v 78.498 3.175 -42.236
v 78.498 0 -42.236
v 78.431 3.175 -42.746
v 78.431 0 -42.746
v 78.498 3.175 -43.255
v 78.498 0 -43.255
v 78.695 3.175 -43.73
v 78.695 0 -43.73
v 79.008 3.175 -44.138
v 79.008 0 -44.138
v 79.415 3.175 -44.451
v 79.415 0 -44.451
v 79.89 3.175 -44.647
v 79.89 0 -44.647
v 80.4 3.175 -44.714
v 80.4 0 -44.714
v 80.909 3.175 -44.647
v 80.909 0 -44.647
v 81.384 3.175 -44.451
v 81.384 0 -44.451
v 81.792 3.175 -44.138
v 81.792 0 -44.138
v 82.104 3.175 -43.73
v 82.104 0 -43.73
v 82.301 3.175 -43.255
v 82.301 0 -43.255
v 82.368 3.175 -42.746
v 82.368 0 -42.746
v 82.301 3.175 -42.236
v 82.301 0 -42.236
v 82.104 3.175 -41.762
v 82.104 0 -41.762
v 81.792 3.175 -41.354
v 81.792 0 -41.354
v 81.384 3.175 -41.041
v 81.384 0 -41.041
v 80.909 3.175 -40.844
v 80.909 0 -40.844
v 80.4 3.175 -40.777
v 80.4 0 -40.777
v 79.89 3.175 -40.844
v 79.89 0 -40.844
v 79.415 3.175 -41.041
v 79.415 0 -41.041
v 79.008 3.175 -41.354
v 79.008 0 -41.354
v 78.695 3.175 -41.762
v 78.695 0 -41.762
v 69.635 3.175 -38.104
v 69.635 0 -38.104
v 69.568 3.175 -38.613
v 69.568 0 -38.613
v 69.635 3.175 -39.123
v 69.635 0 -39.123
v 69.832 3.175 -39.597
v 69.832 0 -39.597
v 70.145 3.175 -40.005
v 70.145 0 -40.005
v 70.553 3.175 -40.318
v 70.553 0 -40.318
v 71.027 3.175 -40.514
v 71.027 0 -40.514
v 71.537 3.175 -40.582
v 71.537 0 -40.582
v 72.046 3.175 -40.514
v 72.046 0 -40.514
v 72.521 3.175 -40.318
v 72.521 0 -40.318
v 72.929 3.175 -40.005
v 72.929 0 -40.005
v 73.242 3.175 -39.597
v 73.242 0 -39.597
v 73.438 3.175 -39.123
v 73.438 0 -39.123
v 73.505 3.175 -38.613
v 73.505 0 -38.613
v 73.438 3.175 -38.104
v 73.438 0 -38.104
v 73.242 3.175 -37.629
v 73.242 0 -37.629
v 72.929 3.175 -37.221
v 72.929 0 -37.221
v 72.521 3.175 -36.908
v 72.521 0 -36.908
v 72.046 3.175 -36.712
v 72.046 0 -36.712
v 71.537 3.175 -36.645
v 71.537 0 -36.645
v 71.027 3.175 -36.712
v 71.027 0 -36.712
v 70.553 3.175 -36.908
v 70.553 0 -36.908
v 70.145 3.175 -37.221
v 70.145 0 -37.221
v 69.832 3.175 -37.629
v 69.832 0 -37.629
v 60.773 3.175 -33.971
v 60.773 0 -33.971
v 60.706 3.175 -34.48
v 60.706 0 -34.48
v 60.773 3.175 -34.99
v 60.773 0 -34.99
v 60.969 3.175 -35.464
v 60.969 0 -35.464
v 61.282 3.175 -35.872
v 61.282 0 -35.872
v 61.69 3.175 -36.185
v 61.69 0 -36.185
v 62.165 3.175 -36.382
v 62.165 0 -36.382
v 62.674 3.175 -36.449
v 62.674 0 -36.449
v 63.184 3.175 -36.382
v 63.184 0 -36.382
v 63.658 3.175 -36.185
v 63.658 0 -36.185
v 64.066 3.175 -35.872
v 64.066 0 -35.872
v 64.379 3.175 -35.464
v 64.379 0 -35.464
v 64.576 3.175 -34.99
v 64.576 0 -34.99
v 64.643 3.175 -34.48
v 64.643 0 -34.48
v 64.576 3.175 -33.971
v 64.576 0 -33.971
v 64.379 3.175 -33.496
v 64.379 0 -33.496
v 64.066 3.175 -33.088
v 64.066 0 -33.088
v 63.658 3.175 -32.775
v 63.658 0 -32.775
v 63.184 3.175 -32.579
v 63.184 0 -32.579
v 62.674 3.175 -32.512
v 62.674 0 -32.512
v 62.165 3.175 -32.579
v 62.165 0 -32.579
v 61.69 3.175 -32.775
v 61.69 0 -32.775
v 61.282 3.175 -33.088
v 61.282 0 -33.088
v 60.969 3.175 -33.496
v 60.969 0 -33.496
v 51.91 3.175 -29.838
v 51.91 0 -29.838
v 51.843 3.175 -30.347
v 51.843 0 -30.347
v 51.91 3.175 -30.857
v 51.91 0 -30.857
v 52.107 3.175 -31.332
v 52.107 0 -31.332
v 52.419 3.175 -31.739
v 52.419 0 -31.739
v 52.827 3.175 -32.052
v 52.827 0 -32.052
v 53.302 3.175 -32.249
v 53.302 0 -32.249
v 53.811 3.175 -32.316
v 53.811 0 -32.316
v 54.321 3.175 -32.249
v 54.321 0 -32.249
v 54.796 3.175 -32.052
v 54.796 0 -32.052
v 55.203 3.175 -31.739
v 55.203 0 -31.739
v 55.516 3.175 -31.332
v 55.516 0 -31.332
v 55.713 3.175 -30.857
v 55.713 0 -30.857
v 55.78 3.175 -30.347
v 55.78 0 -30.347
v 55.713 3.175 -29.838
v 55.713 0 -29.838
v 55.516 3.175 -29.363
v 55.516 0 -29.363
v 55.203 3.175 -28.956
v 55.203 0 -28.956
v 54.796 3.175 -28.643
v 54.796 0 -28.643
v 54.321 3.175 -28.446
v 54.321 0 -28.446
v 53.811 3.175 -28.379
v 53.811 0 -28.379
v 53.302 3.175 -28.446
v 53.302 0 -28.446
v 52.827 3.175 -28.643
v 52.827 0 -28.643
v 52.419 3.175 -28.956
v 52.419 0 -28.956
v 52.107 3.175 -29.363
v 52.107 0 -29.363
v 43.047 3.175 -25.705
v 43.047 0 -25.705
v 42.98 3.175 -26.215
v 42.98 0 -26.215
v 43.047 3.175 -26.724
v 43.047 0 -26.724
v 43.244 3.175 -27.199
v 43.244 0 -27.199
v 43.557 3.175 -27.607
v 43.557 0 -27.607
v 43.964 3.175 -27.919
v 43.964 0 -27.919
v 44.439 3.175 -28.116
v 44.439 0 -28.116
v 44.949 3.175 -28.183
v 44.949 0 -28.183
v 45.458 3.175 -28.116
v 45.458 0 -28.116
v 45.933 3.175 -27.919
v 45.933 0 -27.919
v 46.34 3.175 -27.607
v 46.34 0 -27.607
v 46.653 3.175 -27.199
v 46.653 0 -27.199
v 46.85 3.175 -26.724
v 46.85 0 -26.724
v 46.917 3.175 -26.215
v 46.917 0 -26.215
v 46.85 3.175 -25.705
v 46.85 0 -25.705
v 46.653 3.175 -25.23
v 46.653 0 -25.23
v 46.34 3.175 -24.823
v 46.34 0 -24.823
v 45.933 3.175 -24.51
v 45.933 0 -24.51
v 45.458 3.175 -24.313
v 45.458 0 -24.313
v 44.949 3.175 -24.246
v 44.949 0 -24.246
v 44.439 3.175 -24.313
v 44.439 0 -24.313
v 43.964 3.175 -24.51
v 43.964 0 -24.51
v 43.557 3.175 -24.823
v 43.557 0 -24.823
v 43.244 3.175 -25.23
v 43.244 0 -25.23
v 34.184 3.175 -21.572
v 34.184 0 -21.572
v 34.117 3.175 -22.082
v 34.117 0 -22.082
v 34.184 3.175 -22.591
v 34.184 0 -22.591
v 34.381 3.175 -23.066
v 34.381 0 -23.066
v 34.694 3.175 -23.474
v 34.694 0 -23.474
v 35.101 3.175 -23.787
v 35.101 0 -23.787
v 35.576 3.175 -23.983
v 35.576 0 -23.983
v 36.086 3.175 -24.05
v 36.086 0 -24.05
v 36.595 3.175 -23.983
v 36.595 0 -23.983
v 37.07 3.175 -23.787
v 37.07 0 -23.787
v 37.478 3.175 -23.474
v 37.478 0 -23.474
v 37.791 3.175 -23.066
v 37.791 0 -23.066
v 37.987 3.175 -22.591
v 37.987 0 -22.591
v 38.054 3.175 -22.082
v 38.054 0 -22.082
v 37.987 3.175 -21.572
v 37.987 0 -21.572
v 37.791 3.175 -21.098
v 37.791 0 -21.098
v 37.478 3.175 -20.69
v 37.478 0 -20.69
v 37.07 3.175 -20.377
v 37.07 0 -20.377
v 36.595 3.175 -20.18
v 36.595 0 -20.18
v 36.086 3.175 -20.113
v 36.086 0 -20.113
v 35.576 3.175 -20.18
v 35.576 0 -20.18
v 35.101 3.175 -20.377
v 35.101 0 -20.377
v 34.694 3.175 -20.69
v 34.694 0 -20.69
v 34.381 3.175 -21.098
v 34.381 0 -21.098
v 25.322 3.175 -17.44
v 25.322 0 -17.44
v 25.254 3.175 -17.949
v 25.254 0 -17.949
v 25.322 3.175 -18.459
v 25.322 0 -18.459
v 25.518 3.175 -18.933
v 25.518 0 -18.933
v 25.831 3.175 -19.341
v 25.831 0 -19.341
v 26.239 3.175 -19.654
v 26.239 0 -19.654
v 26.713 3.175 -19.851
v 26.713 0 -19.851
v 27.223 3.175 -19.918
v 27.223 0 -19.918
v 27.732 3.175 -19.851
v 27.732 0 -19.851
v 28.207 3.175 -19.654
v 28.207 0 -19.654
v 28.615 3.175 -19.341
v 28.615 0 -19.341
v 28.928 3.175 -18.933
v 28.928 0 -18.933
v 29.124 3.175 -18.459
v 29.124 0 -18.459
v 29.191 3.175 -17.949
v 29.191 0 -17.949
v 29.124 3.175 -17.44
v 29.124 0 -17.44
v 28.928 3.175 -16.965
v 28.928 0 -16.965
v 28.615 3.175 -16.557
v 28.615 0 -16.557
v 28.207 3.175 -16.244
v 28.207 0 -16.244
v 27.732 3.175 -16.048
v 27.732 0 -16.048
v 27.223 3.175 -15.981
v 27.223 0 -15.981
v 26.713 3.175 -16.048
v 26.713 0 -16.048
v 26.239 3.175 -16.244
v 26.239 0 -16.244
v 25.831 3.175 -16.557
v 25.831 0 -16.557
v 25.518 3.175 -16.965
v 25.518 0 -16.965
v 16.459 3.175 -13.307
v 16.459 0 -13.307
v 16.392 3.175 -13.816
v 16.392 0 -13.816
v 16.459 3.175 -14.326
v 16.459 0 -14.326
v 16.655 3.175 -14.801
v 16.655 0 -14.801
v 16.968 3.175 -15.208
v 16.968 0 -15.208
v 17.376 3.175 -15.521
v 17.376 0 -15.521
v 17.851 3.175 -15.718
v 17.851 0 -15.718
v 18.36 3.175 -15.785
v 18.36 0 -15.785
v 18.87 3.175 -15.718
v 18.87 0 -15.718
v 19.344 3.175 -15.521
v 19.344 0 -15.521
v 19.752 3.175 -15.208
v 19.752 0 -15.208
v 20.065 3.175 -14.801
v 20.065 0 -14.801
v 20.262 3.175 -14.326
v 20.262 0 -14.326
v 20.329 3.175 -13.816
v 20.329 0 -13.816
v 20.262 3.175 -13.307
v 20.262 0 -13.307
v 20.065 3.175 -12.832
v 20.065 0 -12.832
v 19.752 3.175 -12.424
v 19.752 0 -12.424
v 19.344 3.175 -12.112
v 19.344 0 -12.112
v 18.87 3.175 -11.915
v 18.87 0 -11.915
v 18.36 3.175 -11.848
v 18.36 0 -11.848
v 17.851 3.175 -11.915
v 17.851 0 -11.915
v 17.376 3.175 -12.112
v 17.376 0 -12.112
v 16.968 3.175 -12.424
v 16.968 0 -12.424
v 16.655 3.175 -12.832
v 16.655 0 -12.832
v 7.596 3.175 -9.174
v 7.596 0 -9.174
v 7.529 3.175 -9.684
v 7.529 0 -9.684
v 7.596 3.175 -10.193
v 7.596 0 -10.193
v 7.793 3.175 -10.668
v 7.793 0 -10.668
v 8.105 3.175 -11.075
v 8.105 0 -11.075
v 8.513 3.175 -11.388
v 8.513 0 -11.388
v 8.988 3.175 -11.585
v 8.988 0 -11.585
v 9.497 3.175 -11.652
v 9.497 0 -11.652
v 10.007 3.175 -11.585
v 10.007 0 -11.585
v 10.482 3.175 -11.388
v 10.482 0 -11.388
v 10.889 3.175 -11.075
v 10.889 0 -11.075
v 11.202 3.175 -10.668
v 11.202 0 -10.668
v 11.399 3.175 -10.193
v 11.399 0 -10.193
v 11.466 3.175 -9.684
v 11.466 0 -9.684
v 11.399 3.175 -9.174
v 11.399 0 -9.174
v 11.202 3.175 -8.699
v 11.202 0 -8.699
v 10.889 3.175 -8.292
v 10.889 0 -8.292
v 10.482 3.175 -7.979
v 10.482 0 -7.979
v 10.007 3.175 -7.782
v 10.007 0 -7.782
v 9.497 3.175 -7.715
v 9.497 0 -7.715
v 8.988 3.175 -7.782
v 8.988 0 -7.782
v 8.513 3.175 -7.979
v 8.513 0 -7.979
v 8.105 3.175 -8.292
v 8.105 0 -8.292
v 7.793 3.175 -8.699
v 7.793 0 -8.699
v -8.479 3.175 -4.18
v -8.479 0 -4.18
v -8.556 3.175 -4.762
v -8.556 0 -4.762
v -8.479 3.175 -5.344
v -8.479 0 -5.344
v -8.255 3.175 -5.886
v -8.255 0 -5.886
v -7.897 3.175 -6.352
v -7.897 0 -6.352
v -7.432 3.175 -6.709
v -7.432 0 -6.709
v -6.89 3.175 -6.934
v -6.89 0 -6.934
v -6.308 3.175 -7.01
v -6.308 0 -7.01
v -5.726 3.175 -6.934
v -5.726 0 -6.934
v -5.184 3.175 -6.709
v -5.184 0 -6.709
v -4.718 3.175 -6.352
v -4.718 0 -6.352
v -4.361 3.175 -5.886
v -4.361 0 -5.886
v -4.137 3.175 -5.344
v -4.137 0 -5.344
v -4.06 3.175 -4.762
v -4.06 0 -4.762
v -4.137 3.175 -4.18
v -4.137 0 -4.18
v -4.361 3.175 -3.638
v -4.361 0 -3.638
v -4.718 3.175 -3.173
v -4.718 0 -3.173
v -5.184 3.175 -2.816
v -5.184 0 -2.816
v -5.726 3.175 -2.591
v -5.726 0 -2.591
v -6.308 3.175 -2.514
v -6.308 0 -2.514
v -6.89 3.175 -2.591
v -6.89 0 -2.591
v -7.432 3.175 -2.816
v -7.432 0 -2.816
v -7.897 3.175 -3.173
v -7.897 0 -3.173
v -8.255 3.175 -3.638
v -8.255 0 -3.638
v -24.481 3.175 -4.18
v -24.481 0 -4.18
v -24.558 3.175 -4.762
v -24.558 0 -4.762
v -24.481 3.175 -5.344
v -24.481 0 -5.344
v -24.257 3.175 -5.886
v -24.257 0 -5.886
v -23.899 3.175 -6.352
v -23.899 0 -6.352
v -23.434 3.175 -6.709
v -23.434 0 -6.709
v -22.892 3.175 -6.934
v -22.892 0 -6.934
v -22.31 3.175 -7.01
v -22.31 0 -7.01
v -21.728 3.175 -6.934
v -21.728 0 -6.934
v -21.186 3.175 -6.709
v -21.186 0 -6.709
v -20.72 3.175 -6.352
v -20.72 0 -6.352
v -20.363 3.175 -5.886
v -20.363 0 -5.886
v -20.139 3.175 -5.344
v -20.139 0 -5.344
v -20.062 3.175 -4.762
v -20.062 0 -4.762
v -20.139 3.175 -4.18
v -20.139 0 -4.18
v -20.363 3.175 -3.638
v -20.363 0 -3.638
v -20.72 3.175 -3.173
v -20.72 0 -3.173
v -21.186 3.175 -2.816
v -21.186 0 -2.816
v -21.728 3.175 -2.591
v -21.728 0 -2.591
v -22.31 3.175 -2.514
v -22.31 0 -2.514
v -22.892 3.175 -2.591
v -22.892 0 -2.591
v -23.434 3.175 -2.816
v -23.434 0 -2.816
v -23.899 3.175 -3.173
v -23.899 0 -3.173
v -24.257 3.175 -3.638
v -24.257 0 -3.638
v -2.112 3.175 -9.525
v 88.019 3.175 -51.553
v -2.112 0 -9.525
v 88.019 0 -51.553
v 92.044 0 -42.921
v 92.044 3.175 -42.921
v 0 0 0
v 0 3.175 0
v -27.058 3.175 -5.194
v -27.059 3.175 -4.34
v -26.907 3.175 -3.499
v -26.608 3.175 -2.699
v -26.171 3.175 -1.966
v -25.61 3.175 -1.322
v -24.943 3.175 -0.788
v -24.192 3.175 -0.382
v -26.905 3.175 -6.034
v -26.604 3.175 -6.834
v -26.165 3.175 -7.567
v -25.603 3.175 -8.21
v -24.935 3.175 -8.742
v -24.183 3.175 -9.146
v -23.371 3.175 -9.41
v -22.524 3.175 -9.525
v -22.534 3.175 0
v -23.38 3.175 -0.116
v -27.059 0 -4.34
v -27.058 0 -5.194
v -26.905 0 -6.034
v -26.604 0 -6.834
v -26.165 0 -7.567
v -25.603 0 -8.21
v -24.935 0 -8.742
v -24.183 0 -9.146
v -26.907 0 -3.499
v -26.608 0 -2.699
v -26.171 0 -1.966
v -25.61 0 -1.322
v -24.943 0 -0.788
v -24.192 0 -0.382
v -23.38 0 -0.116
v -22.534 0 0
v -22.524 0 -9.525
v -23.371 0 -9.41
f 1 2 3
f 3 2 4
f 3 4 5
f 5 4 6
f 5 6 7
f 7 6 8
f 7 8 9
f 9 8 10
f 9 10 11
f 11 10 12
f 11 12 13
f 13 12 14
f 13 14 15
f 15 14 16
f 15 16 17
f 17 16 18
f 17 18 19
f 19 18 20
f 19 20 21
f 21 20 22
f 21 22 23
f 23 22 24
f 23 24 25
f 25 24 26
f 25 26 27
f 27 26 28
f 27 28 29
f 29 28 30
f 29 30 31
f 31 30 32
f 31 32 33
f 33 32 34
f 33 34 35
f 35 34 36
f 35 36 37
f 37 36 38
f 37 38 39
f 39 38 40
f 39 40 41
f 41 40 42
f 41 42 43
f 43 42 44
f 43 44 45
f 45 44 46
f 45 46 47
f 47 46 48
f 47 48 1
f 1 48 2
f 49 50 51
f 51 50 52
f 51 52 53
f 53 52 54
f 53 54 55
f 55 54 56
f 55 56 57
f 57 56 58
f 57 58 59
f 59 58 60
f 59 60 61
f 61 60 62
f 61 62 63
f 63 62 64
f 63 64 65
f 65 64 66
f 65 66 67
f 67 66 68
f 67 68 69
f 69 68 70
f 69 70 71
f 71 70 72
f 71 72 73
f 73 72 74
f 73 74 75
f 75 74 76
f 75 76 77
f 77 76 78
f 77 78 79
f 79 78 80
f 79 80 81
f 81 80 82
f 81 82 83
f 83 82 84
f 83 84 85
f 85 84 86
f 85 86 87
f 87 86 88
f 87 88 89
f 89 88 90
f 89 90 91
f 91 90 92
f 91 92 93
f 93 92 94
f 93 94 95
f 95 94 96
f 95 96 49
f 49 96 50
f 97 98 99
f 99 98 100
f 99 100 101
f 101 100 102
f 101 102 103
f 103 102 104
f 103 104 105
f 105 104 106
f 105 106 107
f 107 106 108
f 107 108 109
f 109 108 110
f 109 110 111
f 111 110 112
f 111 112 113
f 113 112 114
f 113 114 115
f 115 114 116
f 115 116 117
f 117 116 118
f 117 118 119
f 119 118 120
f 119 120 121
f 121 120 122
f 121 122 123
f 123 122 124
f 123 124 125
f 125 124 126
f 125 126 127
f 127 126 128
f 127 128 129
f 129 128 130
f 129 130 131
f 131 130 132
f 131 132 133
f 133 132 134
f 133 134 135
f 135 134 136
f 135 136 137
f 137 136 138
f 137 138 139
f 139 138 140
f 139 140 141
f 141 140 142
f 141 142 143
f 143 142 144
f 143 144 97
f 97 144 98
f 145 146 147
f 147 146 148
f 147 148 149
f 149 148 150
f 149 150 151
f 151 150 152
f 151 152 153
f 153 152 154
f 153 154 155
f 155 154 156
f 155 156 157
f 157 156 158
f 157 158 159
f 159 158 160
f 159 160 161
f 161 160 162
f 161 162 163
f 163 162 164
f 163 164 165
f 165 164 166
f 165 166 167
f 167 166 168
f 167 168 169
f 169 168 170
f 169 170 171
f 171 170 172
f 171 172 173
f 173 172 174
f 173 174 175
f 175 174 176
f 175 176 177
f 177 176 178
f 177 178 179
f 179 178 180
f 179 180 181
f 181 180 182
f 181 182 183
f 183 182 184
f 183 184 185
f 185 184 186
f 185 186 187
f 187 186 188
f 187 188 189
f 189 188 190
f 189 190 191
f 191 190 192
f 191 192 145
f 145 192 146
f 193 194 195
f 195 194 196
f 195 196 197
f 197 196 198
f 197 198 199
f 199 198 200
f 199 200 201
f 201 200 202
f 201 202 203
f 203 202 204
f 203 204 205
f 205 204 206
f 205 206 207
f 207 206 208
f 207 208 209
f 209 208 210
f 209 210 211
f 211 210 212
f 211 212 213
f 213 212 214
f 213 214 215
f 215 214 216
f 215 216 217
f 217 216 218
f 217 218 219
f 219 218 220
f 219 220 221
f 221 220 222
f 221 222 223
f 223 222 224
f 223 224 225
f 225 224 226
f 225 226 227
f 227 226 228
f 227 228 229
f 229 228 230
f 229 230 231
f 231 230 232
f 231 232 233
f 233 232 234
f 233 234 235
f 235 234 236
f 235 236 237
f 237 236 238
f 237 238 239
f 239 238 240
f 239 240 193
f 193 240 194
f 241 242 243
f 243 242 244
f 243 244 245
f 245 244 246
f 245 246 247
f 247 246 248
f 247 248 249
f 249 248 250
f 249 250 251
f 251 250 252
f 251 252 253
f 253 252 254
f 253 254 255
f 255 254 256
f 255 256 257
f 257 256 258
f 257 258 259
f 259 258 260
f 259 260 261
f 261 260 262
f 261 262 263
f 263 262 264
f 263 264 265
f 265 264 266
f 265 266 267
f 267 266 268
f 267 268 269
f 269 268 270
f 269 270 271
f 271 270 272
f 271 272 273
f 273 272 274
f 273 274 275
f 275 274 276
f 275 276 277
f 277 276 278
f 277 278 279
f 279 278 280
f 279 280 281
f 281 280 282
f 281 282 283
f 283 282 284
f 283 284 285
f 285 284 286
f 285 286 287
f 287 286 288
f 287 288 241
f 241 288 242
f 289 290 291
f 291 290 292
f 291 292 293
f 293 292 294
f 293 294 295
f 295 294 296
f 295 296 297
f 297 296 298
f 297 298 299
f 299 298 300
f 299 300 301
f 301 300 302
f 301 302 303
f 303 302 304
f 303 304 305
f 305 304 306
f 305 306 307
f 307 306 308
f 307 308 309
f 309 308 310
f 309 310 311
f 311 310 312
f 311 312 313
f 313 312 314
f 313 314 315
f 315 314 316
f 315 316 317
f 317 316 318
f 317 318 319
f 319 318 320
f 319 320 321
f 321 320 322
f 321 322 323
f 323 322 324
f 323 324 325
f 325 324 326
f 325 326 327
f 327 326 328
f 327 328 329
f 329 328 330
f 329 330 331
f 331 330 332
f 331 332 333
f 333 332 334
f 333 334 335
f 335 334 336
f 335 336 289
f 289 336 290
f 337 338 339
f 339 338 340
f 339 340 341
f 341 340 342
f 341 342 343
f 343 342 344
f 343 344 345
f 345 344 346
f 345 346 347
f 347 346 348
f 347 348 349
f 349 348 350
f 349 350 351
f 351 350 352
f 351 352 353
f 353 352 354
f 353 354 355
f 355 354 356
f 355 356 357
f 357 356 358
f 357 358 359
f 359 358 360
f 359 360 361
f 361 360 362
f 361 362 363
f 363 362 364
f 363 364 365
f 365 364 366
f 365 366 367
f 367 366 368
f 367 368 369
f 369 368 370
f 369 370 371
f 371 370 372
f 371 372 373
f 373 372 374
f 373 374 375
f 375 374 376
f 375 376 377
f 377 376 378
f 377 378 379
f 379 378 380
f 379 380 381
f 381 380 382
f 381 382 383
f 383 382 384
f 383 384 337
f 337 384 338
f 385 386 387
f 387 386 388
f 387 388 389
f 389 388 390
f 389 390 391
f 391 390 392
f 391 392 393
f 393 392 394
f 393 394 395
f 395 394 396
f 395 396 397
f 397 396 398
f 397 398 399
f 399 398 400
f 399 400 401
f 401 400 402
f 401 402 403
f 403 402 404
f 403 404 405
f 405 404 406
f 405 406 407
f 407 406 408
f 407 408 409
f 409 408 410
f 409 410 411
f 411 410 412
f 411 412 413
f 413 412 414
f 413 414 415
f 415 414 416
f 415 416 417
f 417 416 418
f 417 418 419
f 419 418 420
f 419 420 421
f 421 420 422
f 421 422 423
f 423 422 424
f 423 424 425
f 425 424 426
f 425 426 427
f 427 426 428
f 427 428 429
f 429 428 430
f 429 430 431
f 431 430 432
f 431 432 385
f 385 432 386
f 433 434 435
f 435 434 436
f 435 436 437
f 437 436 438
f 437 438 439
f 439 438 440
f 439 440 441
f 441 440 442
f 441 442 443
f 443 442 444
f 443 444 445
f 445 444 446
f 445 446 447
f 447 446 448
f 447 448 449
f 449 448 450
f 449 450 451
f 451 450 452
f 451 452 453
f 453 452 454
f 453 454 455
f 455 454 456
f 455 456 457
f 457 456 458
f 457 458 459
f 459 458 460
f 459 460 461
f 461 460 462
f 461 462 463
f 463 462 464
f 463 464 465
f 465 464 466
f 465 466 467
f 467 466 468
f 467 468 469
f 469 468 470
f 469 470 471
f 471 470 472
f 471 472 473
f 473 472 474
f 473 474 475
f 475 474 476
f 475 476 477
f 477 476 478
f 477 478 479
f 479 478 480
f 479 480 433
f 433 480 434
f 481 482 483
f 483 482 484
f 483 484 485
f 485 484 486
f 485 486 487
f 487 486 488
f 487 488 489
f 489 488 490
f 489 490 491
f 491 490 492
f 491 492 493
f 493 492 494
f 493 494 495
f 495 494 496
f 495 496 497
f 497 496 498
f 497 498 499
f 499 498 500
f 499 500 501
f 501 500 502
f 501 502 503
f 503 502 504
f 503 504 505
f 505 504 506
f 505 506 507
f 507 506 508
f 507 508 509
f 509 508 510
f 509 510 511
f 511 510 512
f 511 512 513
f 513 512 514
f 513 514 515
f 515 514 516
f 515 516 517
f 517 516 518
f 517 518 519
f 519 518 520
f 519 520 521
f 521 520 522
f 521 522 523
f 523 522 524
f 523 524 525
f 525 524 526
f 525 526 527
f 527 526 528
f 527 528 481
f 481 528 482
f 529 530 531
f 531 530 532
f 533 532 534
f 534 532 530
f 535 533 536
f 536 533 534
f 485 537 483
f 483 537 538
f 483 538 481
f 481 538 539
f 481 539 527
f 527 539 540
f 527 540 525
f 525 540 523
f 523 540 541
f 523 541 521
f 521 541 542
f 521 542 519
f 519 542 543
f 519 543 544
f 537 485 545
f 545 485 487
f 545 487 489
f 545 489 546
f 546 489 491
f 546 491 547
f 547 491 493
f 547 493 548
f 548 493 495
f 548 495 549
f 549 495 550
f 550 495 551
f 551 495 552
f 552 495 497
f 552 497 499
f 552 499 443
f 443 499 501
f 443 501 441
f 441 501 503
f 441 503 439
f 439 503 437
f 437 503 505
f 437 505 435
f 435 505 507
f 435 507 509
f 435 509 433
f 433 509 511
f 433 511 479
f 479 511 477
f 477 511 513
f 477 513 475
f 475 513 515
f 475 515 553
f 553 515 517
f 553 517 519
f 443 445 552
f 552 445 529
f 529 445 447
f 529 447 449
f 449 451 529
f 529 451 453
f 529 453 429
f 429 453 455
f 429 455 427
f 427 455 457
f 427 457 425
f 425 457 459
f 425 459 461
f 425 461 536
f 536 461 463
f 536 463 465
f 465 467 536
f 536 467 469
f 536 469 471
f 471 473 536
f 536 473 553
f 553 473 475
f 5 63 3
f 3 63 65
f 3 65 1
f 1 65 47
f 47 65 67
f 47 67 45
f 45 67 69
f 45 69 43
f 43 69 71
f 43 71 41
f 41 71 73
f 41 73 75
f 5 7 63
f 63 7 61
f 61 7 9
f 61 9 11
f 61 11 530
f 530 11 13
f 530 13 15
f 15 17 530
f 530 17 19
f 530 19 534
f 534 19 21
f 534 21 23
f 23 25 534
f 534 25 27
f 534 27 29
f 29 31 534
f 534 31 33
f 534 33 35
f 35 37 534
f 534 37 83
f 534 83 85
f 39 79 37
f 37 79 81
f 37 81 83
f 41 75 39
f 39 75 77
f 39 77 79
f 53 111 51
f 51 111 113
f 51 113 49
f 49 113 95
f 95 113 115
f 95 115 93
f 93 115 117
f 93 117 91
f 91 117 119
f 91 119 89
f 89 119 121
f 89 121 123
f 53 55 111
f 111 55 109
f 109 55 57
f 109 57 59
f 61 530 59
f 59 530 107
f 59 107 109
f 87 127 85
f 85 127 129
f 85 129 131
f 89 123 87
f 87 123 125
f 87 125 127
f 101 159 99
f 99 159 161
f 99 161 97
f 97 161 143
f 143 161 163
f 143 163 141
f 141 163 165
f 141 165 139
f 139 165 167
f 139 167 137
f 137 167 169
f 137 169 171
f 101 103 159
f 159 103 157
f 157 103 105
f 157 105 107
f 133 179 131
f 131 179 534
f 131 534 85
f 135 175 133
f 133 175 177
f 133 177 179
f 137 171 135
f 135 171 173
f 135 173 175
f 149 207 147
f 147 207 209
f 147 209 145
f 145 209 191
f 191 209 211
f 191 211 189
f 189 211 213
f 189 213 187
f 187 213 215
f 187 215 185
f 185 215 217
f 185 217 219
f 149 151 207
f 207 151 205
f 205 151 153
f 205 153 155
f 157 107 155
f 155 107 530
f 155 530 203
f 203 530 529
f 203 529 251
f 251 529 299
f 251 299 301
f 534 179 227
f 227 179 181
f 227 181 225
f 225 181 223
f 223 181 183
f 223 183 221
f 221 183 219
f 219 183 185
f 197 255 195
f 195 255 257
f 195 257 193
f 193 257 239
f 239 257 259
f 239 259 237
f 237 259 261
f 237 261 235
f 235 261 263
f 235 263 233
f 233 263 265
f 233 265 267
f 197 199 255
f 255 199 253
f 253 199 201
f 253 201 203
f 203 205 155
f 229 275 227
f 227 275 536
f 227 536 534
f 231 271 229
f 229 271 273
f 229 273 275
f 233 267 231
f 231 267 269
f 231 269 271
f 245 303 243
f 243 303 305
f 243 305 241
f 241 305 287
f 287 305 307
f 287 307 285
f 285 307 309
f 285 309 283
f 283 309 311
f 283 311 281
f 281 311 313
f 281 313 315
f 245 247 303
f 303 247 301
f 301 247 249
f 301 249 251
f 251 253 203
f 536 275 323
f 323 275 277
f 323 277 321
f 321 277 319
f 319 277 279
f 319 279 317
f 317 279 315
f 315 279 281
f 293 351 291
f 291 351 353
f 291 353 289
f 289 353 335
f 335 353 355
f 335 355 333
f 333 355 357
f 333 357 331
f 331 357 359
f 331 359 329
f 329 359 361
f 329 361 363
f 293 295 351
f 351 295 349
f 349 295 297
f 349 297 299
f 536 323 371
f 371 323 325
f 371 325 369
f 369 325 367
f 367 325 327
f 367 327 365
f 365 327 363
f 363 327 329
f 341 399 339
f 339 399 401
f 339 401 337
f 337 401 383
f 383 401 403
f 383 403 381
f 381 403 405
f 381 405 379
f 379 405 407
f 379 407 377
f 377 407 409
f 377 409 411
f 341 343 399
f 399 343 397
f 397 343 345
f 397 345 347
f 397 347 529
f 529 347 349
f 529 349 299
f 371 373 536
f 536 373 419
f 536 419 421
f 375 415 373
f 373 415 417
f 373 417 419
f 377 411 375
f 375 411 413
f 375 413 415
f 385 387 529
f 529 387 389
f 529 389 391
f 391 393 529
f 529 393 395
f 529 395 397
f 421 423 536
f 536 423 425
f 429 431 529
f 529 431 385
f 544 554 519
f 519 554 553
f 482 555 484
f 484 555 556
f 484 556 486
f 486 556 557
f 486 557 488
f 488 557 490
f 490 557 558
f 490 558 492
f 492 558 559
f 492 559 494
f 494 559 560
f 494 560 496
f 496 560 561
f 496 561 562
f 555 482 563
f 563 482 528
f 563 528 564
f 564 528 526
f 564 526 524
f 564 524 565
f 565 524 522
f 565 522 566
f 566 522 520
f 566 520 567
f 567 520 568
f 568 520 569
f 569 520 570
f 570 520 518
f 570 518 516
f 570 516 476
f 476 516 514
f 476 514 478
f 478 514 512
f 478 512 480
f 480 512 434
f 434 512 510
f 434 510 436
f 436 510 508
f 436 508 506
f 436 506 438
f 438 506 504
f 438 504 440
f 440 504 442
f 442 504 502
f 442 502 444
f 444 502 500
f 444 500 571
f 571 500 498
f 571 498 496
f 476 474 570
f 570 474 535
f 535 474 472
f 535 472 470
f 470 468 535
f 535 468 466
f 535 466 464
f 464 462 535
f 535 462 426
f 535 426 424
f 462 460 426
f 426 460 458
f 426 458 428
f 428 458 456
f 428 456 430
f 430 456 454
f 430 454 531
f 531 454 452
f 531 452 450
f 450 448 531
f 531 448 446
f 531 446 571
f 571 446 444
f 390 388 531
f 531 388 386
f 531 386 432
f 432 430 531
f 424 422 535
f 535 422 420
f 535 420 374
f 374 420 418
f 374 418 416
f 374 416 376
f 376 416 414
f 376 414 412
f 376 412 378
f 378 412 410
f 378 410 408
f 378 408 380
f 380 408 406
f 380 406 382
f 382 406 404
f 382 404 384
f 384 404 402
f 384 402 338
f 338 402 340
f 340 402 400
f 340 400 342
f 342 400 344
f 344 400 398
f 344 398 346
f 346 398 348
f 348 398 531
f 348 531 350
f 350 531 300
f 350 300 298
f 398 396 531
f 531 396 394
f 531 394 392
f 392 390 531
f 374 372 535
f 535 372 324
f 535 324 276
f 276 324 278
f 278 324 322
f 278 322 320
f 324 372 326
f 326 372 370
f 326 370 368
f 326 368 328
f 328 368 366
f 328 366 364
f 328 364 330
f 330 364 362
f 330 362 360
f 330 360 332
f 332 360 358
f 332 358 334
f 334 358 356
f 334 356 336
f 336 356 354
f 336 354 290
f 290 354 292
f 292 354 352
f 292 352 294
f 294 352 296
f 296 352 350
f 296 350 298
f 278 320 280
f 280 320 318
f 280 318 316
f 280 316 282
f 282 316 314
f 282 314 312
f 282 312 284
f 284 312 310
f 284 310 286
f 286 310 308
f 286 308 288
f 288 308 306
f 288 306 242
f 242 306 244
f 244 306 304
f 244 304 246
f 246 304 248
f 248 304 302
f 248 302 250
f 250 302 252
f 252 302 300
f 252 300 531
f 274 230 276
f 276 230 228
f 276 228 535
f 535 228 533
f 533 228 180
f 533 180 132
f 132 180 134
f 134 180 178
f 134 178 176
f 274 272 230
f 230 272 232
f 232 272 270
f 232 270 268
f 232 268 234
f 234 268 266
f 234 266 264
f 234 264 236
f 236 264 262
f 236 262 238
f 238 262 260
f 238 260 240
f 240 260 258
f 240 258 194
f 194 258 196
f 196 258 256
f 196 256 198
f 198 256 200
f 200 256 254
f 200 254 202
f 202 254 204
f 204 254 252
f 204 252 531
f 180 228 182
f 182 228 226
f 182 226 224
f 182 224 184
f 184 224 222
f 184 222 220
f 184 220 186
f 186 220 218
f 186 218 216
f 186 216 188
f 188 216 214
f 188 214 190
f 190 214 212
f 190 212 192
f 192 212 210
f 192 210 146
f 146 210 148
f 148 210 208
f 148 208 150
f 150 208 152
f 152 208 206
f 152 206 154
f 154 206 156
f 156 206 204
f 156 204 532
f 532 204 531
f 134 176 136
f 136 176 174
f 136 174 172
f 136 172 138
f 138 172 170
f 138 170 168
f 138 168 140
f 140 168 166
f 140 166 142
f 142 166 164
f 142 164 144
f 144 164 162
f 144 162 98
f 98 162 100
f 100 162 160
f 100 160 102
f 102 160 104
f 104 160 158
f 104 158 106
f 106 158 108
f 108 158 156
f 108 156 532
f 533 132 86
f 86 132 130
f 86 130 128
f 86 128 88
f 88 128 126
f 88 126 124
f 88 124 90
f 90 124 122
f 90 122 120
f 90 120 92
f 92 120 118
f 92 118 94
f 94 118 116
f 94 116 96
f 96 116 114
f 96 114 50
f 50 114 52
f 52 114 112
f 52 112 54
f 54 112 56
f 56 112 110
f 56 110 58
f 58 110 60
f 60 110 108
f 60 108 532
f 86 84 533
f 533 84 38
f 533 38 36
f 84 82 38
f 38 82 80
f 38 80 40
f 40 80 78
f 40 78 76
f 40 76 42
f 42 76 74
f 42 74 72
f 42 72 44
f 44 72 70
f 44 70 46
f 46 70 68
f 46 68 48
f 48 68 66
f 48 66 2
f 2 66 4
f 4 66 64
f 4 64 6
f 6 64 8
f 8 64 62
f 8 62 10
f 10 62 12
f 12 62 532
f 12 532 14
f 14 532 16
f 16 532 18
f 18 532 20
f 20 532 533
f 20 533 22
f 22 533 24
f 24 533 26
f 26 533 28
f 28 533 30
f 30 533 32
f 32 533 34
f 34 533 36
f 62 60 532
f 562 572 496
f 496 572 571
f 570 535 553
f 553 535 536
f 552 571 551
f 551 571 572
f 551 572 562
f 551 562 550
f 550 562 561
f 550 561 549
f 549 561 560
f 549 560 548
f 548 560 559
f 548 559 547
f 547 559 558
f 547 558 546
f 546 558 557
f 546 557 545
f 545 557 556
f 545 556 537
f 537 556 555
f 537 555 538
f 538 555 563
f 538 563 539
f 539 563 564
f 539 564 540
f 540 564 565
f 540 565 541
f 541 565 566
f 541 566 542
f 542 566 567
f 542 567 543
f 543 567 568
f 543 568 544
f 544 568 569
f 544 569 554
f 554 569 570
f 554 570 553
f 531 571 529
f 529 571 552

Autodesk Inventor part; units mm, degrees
ref_plane "YZ Plane" through (0, 0, 0) normal (1, 0, 0) x (0, 1, 0)
ref_plane "XZ Plane" through (0, 0, 0) normal (0, 1, 0) x (-1, 0, 0)
ref_plane "XY Plane" through (0, 0, 0) normal (0, 0, 1) x (1, 0, 0)
sketch "Sketch1" plane through (0, 0, 0) normal (0, 1, 0) x (-1, 0, 0)
  line L0 (0, 0) -> (22.5338, 0)
  line L1 (22.5244, -9.525) -> (-0.0054, -9.525)
  line L2 (-0.0054, -9.525) -> (0, 0)
  arc A0 (22.5244, -9.525) -> (22.5338, 0) centre (22.3099, -4.7623) ccw
  line L3 (0, 0) -> (-92.0441, -42.9209)
  line L4 (0, 0) -> (101.5594, 0) construction
  line L5 (-92.0441, -42.9209) -> (-88.0186, -51.5534)
  line L6 (0, 0) -> (4.0254, -8.6326)
  line L7 (4.0254, -8.6326) -> (-88.0186, -51.5534)
  circle A1 centre (22.3099, -4.7623) radius 2.2479
  line L8 (22.3099, -4.7623) -> (6.3079, -4.7623) construction
  circle A2 centre (6.3079, -4.7623) radius 2.2479
  line L9 (2.0127, -4.3163) -> (-9.4974, -9.6835) construction
  circle A3 centre (-9.4974, -9.6835) radius 1.9685
  line L10 (2.0127, -4.3163) -> (-90.0313, -47.2371) construction
  circle A4 centre (-18.3602, -13.8163) radius 1.9685
  circle A5 centre (-27.223, -17.9491) radius 1.9685
  circle A6 centre (-36.0857, -22.0819) radius 1.9685
  circle A7 centre (-44.9485, -26.2147) radius 1.9685
  circle A8 centre (-53.8113, -30.3475) radius 1.9685
  circle A9 centre (-62.6741, -34.4802) radius 1.9685
  circle A10 centre (-71.5369, -38.613) radius 1.9685
  circle A11 centre (-80.3997, -42.7458) radius 1.9685
  line L11 (22.3099, -4.7623) -> (6.1972, -4.7623) construction
  line L12 (6.1972, -4.7623) -> (6.1972, 11.2397) construction
  line L13 (6.1972, 11.2397) -> (22.3099, 11.2397) construction
  line L14 (22.3099, 11.2397) -> (22.3099, -4.7623) construction
  line L15 (14.2536, 11.2397) -> (14.2536, -4.7623) construction
  line L16 (22.3099, 3.2387) -> (6.1972, 3.2387) construction
  circle A12 centre (14.2536, 3.2387) radius 1.27 construction
  dimension "d0" = 22.5298
  dimension "d1" = 9.525
  dimension "d2" = 4.7675
  dimension "d4" = 155
  dimension "d7" = 9.525
  dimension "d8" = 9.525
  dimension "d9" = 4.4958
  dimension "d10" = 16.002
  dimension "d11" = 4.4958
  dimension "d12" = 12.7
  dimension "d13" = 3.937
  dimension "d14" = 4.7625
  dimension "d15" = 3.937
  dimension "d16" = 9.779
  dimension "d17" = 3.937
  dimension "d18" = 9.779
  dimension "d19" = 3.937
  dimension "d20" = 9.779
  dimension "d21" = 3.937
  dimension "d22" = 9.779
  dimension "d23" = 3.937
  dimension "d24" = 9.779
  dimension "d25" = 3.937
  dimension "d26" = 9.779
  dimension "d27" = 3.937
  dimension "d28" = 9.779
  dimension "d29" = 3.937
  dimension "d30" = 9.779
  dimension "d31" = 16.002
  dimension "d32" = 2.54
  dimension "d33" = 115.8874
extrude "Extrusion1" add sketch "Sketch1" along normal blind 3.175
properties part number "CollectorArm155"
